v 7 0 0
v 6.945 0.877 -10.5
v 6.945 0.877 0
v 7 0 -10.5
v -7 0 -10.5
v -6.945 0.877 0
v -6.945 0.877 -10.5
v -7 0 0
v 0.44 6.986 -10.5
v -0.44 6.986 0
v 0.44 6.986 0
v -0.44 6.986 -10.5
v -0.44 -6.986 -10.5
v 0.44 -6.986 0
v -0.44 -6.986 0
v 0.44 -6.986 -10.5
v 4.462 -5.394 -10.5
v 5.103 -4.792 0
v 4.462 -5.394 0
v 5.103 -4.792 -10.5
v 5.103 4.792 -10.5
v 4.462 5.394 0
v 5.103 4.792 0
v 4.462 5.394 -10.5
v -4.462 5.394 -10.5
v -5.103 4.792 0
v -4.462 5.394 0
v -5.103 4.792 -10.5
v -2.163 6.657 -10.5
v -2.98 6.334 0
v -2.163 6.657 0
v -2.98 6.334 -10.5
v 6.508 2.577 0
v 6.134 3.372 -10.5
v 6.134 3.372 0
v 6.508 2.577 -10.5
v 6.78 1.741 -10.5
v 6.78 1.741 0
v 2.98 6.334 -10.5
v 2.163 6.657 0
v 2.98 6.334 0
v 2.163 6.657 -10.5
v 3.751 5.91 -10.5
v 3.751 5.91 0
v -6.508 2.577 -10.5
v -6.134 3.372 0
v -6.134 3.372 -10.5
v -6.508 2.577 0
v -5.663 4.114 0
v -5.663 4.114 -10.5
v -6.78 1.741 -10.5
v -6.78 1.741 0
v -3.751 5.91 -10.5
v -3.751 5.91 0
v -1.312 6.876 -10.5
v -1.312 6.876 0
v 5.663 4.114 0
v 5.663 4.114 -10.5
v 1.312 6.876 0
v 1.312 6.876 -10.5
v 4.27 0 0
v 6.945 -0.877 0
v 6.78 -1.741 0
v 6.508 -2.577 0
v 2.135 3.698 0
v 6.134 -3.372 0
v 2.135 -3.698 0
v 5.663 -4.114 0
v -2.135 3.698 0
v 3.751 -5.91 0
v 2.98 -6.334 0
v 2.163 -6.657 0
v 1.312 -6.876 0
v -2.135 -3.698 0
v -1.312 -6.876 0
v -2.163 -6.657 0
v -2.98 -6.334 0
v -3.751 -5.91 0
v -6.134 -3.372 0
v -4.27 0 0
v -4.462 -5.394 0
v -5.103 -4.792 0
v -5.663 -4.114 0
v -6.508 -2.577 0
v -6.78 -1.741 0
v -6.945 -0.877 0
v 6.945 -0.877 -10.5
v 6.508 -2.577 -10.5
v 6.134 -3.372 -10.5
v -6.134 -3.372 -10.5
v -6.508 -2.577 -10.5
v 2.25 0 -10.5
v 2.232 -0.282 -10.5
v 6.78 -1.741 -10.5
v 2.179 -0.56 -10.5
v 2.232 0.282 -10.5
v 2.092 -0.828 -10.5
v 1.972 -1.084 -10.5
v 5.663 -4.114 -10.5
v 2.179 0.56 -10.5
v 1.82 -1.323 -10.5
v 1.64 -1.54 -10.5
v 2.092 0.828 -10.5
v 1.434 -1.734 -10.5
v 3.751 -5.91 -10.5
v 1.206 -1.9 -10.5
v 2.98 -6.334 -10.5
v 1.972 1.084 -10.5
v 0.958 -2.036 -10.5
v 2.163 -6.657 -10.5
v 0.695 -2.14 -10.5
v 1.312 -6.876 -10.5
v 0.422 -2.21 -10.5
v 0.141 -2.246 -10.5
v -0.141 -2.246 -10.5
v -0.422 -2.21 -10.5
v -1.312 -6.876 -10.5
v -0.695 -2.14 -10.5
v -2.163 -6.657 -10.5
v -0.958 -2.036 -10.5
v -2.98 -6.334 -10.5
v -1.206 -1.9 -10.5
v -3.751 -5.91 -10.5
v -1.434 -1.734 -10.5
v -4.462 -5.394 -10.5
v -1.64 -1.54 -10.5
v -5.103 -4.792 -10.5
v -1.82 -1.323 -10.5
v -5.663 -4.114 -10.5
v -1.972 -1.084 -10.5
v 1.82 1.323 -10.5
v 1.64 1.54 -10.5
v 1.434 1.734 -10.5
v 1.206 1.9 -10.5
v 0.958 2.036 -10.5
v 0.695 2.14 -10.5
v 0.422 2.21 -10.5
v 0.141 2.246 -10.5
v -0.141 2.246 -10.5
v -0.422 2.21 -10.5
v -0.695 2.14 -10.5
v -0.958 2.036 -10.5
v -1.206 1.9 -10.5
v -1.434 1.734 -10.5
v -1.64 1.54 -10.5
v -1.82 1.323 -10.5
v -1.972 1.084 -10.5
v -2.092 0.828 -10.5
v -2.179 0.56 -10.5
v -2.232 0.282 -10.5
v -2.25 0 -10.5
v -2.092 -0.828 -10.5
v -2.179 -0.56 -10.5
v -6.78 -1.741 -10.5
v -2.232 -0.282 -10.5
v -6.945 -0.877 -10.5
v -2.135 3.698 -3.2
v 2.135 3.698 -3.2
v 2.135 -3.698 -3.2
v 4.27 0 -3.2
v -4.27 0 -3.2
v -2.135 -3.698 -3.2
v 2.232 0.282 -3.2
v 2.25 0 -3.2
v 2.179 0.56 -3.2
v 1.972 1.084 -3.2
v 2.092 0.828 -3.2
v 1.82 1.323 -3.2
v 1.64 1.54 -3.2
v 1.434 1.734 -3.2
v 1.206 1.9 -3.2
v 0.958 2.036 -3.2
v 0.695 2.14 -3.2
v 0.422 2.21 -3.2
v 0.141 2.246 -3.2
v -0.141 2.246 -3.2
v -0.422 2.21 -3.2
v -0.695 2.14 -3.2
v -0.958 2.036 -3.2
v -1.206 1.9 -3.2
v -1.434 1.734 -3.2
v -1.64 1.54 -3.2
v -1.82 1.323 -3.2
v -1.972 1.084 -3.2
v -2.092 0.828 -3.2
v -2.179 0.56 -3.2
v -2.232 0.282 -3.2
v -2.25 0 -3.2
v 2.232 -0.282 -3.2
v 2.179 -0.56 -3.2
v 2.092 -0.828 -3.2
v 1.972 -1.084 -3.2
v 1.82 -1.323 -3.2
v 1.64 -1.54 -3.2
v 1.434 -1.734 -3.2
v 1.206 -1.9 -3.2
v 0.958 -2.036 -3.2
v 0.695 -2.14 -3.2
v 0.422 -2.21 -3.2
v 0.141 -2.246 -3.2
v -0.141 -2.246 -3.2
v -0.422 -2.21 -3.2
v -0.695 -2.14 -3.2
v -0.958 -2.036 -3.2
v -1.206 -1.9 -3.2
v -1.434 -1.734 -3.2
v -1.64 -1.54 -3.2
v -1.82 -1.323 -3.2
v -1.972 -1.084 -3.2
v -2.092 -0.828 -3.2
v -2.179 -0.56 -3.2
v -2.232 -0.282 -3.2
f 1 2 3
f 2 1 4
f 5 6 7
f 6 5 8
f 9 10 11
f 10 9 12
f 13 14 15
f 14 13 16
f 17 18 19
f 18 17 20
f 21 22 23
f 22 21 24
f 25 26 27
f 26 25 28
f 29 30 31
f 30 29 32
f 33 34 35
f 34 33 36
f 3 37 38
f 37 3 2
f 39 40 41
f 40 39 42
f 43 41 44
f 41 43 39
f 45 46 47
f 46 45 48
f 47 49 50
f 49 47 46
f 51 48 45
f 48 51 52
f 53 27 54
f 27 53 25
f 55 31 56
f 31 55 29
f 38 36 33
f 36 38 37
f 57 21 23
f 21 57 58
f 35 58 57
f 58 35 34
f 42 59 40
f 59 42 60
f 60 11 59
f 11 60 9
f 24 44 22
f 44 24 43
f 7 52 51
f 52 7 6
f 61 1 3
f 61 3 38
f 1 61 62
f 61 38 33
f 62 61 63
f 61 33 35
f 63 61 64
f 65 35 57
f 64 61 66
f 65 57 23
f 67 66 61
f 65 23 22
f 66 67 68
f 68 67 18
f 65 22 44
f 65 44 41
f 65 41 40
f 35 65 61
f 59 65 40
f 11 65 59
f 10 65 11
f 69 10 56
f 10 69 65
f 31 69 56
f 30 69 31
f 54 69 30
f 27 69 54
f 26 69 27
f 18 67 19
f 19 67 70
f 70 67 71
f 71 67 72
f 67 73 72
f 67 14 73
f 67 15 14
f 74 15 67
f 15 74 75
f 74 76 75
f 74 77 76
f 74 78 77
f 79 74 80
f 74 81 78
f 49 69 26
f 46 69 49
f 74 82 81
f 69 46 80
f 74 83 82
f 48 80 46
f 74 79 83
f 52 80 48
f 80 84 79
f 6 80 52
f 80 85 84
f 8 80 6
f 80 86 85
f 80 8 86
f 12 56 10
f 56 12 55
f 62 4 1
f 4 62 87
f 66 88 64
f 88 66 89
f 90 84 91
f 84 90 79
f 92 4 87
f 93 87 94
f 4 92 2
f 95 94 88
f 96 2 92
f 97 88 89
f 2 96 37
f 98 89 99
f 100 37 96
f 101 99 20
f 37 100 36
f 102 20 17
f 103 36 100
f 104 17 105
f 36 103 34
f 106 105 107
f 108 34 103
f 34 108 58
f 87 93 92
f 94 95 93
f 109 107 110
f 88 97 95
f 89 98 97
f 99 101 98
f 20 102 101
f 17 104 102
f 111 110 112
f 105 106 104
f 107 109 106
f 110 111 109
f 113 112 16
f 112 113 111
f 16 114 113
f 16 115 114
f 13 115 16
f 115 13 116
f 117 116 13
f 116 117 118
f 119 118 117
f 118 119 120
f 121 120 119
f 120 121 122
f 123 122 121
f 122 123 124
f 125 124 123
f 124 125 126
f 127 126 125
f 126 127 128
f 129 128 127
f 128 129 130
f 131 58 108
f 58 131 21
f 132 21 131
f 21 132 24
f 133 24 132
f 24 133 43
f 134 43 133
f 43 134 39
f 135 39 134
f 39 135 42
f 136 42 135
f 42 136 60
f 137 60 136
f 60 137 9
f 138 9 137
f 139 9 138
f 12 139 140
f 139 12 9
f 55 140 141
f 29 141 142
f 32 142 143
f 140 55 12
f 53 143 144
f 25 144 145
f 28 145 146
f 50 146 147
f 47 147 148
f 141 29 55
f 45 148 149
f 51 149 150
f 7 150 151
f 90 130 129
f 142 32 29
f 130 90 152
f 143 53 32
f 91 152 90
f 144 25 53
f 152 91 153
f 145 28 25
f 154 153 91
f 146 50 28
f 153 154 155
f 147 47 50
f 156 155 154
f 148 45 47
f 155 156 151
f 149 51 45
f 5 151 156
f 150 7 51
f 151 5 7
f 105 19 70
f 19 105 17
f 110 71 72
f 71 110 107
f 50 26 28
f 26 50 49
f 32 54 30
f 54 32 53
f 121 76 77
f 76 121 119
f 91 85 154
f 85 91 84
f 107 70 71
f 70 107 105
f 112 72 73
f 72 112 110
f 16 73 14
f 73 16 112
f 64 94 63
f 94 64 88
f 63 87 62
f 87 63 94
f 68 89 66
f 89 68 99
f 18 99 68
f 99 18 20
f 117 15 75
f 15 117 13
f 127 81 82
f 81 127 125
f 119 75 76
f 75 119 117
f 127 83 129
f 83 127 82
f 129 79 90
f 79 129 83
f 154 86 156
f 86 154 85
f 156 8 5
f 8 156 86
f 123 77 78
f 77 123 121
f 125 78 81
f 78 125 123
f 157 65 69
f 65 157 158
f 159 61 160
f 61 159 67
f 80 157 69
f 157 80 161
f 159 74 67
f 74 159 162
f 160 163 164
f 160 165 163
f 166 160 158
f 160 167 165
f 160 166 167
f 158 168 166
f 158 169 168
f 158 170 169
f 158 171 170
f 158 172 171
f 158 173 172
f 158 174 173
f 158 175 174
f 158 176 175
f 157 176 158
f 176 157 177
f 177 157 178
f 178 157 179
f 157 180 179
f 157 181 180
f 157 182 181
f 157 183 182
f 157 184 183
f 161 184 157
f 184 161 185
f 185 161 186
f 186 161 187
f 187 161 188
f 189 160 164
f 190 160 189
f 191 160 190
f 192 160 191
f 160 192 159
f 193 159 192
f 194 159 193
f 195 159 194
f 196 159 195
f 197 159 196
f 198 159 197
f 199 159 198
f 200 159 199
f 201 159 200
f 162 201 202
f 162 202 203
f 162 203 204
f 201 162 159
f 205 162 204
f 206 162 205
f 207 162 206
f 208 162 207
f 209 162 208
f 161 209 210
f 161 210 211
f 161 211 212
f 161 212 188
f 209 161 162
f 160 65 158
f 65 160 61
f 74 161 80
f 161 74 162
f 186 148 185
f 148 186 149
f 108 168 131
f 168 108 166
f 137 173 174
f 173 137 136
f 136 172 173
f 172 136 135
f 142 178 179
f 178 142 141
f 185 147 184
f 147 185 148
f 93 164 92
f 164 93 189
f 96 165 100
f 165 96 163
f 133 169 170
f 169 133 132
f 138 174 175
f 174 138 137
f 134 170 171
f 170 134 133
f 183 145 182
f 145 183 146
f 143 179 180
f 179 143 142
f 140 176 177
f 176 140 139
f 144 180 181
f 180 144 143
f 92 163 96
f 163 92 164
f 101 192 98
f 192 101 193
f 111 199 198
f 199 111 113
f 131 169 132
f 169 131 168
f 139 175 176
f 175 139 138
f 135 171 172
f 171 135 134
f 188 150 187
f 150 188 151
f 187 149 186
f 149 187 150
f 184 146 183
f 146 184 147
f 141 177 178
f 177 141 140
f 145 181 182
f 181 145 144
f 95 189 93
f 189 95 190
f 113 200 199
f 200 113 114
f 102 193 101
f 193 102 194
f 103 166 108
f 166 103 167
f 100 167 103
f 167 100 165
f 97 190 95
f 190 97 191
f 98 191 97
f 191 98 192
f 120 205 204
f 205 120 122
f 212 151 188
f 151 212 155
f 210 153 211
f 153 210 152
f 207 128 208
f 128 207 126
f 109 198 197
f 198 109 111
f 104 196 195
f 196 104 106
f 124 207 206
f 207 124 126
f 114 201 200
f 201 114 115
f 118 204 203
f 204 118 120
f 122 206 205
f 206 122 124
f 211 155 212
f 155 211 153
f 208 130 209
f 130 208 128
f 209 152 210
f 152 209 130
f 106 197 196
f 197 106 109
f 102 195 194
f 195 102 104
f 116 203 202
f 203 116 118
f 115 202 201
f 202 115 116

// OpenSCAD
$fn = 50;


difference() {
	union() {
		translate(v = [0, 0, -10.5000000000]) {
			cylinder(h = 10.5000000000, r = 7.0000000000);
		}
		translate(v = [0, 0, -9.0000000000]) {
			cylinder(h = 9, r = 2.8750000000);
		}
	}
	union() {
		translate(v = [0, 0, 0]) {
			rotate(a = [0, 0, 0]) {
				difference() {
					union() {
						translate(v = [0, 0, -3.2000000000]) {
							#linear_extrude(height = 3.2000000000) {
								polygon(points = [[4.2698000000, 0.0000000000], [2.1349000000, 3.6977552691], [-2.1349000000, 3.6977552691], [-4.2698000000, 0.0000000000], [-2.1349000000, -3.6977552691], [2.1349000000, -3.6977552691]]);
							}
						}
					}
					union();
				}
			}
		}
		#translate(v = [0, 0, -100.0000000000]) {
			cylinder(h = 200, r = 2.2500000000);
		}
	}
}
